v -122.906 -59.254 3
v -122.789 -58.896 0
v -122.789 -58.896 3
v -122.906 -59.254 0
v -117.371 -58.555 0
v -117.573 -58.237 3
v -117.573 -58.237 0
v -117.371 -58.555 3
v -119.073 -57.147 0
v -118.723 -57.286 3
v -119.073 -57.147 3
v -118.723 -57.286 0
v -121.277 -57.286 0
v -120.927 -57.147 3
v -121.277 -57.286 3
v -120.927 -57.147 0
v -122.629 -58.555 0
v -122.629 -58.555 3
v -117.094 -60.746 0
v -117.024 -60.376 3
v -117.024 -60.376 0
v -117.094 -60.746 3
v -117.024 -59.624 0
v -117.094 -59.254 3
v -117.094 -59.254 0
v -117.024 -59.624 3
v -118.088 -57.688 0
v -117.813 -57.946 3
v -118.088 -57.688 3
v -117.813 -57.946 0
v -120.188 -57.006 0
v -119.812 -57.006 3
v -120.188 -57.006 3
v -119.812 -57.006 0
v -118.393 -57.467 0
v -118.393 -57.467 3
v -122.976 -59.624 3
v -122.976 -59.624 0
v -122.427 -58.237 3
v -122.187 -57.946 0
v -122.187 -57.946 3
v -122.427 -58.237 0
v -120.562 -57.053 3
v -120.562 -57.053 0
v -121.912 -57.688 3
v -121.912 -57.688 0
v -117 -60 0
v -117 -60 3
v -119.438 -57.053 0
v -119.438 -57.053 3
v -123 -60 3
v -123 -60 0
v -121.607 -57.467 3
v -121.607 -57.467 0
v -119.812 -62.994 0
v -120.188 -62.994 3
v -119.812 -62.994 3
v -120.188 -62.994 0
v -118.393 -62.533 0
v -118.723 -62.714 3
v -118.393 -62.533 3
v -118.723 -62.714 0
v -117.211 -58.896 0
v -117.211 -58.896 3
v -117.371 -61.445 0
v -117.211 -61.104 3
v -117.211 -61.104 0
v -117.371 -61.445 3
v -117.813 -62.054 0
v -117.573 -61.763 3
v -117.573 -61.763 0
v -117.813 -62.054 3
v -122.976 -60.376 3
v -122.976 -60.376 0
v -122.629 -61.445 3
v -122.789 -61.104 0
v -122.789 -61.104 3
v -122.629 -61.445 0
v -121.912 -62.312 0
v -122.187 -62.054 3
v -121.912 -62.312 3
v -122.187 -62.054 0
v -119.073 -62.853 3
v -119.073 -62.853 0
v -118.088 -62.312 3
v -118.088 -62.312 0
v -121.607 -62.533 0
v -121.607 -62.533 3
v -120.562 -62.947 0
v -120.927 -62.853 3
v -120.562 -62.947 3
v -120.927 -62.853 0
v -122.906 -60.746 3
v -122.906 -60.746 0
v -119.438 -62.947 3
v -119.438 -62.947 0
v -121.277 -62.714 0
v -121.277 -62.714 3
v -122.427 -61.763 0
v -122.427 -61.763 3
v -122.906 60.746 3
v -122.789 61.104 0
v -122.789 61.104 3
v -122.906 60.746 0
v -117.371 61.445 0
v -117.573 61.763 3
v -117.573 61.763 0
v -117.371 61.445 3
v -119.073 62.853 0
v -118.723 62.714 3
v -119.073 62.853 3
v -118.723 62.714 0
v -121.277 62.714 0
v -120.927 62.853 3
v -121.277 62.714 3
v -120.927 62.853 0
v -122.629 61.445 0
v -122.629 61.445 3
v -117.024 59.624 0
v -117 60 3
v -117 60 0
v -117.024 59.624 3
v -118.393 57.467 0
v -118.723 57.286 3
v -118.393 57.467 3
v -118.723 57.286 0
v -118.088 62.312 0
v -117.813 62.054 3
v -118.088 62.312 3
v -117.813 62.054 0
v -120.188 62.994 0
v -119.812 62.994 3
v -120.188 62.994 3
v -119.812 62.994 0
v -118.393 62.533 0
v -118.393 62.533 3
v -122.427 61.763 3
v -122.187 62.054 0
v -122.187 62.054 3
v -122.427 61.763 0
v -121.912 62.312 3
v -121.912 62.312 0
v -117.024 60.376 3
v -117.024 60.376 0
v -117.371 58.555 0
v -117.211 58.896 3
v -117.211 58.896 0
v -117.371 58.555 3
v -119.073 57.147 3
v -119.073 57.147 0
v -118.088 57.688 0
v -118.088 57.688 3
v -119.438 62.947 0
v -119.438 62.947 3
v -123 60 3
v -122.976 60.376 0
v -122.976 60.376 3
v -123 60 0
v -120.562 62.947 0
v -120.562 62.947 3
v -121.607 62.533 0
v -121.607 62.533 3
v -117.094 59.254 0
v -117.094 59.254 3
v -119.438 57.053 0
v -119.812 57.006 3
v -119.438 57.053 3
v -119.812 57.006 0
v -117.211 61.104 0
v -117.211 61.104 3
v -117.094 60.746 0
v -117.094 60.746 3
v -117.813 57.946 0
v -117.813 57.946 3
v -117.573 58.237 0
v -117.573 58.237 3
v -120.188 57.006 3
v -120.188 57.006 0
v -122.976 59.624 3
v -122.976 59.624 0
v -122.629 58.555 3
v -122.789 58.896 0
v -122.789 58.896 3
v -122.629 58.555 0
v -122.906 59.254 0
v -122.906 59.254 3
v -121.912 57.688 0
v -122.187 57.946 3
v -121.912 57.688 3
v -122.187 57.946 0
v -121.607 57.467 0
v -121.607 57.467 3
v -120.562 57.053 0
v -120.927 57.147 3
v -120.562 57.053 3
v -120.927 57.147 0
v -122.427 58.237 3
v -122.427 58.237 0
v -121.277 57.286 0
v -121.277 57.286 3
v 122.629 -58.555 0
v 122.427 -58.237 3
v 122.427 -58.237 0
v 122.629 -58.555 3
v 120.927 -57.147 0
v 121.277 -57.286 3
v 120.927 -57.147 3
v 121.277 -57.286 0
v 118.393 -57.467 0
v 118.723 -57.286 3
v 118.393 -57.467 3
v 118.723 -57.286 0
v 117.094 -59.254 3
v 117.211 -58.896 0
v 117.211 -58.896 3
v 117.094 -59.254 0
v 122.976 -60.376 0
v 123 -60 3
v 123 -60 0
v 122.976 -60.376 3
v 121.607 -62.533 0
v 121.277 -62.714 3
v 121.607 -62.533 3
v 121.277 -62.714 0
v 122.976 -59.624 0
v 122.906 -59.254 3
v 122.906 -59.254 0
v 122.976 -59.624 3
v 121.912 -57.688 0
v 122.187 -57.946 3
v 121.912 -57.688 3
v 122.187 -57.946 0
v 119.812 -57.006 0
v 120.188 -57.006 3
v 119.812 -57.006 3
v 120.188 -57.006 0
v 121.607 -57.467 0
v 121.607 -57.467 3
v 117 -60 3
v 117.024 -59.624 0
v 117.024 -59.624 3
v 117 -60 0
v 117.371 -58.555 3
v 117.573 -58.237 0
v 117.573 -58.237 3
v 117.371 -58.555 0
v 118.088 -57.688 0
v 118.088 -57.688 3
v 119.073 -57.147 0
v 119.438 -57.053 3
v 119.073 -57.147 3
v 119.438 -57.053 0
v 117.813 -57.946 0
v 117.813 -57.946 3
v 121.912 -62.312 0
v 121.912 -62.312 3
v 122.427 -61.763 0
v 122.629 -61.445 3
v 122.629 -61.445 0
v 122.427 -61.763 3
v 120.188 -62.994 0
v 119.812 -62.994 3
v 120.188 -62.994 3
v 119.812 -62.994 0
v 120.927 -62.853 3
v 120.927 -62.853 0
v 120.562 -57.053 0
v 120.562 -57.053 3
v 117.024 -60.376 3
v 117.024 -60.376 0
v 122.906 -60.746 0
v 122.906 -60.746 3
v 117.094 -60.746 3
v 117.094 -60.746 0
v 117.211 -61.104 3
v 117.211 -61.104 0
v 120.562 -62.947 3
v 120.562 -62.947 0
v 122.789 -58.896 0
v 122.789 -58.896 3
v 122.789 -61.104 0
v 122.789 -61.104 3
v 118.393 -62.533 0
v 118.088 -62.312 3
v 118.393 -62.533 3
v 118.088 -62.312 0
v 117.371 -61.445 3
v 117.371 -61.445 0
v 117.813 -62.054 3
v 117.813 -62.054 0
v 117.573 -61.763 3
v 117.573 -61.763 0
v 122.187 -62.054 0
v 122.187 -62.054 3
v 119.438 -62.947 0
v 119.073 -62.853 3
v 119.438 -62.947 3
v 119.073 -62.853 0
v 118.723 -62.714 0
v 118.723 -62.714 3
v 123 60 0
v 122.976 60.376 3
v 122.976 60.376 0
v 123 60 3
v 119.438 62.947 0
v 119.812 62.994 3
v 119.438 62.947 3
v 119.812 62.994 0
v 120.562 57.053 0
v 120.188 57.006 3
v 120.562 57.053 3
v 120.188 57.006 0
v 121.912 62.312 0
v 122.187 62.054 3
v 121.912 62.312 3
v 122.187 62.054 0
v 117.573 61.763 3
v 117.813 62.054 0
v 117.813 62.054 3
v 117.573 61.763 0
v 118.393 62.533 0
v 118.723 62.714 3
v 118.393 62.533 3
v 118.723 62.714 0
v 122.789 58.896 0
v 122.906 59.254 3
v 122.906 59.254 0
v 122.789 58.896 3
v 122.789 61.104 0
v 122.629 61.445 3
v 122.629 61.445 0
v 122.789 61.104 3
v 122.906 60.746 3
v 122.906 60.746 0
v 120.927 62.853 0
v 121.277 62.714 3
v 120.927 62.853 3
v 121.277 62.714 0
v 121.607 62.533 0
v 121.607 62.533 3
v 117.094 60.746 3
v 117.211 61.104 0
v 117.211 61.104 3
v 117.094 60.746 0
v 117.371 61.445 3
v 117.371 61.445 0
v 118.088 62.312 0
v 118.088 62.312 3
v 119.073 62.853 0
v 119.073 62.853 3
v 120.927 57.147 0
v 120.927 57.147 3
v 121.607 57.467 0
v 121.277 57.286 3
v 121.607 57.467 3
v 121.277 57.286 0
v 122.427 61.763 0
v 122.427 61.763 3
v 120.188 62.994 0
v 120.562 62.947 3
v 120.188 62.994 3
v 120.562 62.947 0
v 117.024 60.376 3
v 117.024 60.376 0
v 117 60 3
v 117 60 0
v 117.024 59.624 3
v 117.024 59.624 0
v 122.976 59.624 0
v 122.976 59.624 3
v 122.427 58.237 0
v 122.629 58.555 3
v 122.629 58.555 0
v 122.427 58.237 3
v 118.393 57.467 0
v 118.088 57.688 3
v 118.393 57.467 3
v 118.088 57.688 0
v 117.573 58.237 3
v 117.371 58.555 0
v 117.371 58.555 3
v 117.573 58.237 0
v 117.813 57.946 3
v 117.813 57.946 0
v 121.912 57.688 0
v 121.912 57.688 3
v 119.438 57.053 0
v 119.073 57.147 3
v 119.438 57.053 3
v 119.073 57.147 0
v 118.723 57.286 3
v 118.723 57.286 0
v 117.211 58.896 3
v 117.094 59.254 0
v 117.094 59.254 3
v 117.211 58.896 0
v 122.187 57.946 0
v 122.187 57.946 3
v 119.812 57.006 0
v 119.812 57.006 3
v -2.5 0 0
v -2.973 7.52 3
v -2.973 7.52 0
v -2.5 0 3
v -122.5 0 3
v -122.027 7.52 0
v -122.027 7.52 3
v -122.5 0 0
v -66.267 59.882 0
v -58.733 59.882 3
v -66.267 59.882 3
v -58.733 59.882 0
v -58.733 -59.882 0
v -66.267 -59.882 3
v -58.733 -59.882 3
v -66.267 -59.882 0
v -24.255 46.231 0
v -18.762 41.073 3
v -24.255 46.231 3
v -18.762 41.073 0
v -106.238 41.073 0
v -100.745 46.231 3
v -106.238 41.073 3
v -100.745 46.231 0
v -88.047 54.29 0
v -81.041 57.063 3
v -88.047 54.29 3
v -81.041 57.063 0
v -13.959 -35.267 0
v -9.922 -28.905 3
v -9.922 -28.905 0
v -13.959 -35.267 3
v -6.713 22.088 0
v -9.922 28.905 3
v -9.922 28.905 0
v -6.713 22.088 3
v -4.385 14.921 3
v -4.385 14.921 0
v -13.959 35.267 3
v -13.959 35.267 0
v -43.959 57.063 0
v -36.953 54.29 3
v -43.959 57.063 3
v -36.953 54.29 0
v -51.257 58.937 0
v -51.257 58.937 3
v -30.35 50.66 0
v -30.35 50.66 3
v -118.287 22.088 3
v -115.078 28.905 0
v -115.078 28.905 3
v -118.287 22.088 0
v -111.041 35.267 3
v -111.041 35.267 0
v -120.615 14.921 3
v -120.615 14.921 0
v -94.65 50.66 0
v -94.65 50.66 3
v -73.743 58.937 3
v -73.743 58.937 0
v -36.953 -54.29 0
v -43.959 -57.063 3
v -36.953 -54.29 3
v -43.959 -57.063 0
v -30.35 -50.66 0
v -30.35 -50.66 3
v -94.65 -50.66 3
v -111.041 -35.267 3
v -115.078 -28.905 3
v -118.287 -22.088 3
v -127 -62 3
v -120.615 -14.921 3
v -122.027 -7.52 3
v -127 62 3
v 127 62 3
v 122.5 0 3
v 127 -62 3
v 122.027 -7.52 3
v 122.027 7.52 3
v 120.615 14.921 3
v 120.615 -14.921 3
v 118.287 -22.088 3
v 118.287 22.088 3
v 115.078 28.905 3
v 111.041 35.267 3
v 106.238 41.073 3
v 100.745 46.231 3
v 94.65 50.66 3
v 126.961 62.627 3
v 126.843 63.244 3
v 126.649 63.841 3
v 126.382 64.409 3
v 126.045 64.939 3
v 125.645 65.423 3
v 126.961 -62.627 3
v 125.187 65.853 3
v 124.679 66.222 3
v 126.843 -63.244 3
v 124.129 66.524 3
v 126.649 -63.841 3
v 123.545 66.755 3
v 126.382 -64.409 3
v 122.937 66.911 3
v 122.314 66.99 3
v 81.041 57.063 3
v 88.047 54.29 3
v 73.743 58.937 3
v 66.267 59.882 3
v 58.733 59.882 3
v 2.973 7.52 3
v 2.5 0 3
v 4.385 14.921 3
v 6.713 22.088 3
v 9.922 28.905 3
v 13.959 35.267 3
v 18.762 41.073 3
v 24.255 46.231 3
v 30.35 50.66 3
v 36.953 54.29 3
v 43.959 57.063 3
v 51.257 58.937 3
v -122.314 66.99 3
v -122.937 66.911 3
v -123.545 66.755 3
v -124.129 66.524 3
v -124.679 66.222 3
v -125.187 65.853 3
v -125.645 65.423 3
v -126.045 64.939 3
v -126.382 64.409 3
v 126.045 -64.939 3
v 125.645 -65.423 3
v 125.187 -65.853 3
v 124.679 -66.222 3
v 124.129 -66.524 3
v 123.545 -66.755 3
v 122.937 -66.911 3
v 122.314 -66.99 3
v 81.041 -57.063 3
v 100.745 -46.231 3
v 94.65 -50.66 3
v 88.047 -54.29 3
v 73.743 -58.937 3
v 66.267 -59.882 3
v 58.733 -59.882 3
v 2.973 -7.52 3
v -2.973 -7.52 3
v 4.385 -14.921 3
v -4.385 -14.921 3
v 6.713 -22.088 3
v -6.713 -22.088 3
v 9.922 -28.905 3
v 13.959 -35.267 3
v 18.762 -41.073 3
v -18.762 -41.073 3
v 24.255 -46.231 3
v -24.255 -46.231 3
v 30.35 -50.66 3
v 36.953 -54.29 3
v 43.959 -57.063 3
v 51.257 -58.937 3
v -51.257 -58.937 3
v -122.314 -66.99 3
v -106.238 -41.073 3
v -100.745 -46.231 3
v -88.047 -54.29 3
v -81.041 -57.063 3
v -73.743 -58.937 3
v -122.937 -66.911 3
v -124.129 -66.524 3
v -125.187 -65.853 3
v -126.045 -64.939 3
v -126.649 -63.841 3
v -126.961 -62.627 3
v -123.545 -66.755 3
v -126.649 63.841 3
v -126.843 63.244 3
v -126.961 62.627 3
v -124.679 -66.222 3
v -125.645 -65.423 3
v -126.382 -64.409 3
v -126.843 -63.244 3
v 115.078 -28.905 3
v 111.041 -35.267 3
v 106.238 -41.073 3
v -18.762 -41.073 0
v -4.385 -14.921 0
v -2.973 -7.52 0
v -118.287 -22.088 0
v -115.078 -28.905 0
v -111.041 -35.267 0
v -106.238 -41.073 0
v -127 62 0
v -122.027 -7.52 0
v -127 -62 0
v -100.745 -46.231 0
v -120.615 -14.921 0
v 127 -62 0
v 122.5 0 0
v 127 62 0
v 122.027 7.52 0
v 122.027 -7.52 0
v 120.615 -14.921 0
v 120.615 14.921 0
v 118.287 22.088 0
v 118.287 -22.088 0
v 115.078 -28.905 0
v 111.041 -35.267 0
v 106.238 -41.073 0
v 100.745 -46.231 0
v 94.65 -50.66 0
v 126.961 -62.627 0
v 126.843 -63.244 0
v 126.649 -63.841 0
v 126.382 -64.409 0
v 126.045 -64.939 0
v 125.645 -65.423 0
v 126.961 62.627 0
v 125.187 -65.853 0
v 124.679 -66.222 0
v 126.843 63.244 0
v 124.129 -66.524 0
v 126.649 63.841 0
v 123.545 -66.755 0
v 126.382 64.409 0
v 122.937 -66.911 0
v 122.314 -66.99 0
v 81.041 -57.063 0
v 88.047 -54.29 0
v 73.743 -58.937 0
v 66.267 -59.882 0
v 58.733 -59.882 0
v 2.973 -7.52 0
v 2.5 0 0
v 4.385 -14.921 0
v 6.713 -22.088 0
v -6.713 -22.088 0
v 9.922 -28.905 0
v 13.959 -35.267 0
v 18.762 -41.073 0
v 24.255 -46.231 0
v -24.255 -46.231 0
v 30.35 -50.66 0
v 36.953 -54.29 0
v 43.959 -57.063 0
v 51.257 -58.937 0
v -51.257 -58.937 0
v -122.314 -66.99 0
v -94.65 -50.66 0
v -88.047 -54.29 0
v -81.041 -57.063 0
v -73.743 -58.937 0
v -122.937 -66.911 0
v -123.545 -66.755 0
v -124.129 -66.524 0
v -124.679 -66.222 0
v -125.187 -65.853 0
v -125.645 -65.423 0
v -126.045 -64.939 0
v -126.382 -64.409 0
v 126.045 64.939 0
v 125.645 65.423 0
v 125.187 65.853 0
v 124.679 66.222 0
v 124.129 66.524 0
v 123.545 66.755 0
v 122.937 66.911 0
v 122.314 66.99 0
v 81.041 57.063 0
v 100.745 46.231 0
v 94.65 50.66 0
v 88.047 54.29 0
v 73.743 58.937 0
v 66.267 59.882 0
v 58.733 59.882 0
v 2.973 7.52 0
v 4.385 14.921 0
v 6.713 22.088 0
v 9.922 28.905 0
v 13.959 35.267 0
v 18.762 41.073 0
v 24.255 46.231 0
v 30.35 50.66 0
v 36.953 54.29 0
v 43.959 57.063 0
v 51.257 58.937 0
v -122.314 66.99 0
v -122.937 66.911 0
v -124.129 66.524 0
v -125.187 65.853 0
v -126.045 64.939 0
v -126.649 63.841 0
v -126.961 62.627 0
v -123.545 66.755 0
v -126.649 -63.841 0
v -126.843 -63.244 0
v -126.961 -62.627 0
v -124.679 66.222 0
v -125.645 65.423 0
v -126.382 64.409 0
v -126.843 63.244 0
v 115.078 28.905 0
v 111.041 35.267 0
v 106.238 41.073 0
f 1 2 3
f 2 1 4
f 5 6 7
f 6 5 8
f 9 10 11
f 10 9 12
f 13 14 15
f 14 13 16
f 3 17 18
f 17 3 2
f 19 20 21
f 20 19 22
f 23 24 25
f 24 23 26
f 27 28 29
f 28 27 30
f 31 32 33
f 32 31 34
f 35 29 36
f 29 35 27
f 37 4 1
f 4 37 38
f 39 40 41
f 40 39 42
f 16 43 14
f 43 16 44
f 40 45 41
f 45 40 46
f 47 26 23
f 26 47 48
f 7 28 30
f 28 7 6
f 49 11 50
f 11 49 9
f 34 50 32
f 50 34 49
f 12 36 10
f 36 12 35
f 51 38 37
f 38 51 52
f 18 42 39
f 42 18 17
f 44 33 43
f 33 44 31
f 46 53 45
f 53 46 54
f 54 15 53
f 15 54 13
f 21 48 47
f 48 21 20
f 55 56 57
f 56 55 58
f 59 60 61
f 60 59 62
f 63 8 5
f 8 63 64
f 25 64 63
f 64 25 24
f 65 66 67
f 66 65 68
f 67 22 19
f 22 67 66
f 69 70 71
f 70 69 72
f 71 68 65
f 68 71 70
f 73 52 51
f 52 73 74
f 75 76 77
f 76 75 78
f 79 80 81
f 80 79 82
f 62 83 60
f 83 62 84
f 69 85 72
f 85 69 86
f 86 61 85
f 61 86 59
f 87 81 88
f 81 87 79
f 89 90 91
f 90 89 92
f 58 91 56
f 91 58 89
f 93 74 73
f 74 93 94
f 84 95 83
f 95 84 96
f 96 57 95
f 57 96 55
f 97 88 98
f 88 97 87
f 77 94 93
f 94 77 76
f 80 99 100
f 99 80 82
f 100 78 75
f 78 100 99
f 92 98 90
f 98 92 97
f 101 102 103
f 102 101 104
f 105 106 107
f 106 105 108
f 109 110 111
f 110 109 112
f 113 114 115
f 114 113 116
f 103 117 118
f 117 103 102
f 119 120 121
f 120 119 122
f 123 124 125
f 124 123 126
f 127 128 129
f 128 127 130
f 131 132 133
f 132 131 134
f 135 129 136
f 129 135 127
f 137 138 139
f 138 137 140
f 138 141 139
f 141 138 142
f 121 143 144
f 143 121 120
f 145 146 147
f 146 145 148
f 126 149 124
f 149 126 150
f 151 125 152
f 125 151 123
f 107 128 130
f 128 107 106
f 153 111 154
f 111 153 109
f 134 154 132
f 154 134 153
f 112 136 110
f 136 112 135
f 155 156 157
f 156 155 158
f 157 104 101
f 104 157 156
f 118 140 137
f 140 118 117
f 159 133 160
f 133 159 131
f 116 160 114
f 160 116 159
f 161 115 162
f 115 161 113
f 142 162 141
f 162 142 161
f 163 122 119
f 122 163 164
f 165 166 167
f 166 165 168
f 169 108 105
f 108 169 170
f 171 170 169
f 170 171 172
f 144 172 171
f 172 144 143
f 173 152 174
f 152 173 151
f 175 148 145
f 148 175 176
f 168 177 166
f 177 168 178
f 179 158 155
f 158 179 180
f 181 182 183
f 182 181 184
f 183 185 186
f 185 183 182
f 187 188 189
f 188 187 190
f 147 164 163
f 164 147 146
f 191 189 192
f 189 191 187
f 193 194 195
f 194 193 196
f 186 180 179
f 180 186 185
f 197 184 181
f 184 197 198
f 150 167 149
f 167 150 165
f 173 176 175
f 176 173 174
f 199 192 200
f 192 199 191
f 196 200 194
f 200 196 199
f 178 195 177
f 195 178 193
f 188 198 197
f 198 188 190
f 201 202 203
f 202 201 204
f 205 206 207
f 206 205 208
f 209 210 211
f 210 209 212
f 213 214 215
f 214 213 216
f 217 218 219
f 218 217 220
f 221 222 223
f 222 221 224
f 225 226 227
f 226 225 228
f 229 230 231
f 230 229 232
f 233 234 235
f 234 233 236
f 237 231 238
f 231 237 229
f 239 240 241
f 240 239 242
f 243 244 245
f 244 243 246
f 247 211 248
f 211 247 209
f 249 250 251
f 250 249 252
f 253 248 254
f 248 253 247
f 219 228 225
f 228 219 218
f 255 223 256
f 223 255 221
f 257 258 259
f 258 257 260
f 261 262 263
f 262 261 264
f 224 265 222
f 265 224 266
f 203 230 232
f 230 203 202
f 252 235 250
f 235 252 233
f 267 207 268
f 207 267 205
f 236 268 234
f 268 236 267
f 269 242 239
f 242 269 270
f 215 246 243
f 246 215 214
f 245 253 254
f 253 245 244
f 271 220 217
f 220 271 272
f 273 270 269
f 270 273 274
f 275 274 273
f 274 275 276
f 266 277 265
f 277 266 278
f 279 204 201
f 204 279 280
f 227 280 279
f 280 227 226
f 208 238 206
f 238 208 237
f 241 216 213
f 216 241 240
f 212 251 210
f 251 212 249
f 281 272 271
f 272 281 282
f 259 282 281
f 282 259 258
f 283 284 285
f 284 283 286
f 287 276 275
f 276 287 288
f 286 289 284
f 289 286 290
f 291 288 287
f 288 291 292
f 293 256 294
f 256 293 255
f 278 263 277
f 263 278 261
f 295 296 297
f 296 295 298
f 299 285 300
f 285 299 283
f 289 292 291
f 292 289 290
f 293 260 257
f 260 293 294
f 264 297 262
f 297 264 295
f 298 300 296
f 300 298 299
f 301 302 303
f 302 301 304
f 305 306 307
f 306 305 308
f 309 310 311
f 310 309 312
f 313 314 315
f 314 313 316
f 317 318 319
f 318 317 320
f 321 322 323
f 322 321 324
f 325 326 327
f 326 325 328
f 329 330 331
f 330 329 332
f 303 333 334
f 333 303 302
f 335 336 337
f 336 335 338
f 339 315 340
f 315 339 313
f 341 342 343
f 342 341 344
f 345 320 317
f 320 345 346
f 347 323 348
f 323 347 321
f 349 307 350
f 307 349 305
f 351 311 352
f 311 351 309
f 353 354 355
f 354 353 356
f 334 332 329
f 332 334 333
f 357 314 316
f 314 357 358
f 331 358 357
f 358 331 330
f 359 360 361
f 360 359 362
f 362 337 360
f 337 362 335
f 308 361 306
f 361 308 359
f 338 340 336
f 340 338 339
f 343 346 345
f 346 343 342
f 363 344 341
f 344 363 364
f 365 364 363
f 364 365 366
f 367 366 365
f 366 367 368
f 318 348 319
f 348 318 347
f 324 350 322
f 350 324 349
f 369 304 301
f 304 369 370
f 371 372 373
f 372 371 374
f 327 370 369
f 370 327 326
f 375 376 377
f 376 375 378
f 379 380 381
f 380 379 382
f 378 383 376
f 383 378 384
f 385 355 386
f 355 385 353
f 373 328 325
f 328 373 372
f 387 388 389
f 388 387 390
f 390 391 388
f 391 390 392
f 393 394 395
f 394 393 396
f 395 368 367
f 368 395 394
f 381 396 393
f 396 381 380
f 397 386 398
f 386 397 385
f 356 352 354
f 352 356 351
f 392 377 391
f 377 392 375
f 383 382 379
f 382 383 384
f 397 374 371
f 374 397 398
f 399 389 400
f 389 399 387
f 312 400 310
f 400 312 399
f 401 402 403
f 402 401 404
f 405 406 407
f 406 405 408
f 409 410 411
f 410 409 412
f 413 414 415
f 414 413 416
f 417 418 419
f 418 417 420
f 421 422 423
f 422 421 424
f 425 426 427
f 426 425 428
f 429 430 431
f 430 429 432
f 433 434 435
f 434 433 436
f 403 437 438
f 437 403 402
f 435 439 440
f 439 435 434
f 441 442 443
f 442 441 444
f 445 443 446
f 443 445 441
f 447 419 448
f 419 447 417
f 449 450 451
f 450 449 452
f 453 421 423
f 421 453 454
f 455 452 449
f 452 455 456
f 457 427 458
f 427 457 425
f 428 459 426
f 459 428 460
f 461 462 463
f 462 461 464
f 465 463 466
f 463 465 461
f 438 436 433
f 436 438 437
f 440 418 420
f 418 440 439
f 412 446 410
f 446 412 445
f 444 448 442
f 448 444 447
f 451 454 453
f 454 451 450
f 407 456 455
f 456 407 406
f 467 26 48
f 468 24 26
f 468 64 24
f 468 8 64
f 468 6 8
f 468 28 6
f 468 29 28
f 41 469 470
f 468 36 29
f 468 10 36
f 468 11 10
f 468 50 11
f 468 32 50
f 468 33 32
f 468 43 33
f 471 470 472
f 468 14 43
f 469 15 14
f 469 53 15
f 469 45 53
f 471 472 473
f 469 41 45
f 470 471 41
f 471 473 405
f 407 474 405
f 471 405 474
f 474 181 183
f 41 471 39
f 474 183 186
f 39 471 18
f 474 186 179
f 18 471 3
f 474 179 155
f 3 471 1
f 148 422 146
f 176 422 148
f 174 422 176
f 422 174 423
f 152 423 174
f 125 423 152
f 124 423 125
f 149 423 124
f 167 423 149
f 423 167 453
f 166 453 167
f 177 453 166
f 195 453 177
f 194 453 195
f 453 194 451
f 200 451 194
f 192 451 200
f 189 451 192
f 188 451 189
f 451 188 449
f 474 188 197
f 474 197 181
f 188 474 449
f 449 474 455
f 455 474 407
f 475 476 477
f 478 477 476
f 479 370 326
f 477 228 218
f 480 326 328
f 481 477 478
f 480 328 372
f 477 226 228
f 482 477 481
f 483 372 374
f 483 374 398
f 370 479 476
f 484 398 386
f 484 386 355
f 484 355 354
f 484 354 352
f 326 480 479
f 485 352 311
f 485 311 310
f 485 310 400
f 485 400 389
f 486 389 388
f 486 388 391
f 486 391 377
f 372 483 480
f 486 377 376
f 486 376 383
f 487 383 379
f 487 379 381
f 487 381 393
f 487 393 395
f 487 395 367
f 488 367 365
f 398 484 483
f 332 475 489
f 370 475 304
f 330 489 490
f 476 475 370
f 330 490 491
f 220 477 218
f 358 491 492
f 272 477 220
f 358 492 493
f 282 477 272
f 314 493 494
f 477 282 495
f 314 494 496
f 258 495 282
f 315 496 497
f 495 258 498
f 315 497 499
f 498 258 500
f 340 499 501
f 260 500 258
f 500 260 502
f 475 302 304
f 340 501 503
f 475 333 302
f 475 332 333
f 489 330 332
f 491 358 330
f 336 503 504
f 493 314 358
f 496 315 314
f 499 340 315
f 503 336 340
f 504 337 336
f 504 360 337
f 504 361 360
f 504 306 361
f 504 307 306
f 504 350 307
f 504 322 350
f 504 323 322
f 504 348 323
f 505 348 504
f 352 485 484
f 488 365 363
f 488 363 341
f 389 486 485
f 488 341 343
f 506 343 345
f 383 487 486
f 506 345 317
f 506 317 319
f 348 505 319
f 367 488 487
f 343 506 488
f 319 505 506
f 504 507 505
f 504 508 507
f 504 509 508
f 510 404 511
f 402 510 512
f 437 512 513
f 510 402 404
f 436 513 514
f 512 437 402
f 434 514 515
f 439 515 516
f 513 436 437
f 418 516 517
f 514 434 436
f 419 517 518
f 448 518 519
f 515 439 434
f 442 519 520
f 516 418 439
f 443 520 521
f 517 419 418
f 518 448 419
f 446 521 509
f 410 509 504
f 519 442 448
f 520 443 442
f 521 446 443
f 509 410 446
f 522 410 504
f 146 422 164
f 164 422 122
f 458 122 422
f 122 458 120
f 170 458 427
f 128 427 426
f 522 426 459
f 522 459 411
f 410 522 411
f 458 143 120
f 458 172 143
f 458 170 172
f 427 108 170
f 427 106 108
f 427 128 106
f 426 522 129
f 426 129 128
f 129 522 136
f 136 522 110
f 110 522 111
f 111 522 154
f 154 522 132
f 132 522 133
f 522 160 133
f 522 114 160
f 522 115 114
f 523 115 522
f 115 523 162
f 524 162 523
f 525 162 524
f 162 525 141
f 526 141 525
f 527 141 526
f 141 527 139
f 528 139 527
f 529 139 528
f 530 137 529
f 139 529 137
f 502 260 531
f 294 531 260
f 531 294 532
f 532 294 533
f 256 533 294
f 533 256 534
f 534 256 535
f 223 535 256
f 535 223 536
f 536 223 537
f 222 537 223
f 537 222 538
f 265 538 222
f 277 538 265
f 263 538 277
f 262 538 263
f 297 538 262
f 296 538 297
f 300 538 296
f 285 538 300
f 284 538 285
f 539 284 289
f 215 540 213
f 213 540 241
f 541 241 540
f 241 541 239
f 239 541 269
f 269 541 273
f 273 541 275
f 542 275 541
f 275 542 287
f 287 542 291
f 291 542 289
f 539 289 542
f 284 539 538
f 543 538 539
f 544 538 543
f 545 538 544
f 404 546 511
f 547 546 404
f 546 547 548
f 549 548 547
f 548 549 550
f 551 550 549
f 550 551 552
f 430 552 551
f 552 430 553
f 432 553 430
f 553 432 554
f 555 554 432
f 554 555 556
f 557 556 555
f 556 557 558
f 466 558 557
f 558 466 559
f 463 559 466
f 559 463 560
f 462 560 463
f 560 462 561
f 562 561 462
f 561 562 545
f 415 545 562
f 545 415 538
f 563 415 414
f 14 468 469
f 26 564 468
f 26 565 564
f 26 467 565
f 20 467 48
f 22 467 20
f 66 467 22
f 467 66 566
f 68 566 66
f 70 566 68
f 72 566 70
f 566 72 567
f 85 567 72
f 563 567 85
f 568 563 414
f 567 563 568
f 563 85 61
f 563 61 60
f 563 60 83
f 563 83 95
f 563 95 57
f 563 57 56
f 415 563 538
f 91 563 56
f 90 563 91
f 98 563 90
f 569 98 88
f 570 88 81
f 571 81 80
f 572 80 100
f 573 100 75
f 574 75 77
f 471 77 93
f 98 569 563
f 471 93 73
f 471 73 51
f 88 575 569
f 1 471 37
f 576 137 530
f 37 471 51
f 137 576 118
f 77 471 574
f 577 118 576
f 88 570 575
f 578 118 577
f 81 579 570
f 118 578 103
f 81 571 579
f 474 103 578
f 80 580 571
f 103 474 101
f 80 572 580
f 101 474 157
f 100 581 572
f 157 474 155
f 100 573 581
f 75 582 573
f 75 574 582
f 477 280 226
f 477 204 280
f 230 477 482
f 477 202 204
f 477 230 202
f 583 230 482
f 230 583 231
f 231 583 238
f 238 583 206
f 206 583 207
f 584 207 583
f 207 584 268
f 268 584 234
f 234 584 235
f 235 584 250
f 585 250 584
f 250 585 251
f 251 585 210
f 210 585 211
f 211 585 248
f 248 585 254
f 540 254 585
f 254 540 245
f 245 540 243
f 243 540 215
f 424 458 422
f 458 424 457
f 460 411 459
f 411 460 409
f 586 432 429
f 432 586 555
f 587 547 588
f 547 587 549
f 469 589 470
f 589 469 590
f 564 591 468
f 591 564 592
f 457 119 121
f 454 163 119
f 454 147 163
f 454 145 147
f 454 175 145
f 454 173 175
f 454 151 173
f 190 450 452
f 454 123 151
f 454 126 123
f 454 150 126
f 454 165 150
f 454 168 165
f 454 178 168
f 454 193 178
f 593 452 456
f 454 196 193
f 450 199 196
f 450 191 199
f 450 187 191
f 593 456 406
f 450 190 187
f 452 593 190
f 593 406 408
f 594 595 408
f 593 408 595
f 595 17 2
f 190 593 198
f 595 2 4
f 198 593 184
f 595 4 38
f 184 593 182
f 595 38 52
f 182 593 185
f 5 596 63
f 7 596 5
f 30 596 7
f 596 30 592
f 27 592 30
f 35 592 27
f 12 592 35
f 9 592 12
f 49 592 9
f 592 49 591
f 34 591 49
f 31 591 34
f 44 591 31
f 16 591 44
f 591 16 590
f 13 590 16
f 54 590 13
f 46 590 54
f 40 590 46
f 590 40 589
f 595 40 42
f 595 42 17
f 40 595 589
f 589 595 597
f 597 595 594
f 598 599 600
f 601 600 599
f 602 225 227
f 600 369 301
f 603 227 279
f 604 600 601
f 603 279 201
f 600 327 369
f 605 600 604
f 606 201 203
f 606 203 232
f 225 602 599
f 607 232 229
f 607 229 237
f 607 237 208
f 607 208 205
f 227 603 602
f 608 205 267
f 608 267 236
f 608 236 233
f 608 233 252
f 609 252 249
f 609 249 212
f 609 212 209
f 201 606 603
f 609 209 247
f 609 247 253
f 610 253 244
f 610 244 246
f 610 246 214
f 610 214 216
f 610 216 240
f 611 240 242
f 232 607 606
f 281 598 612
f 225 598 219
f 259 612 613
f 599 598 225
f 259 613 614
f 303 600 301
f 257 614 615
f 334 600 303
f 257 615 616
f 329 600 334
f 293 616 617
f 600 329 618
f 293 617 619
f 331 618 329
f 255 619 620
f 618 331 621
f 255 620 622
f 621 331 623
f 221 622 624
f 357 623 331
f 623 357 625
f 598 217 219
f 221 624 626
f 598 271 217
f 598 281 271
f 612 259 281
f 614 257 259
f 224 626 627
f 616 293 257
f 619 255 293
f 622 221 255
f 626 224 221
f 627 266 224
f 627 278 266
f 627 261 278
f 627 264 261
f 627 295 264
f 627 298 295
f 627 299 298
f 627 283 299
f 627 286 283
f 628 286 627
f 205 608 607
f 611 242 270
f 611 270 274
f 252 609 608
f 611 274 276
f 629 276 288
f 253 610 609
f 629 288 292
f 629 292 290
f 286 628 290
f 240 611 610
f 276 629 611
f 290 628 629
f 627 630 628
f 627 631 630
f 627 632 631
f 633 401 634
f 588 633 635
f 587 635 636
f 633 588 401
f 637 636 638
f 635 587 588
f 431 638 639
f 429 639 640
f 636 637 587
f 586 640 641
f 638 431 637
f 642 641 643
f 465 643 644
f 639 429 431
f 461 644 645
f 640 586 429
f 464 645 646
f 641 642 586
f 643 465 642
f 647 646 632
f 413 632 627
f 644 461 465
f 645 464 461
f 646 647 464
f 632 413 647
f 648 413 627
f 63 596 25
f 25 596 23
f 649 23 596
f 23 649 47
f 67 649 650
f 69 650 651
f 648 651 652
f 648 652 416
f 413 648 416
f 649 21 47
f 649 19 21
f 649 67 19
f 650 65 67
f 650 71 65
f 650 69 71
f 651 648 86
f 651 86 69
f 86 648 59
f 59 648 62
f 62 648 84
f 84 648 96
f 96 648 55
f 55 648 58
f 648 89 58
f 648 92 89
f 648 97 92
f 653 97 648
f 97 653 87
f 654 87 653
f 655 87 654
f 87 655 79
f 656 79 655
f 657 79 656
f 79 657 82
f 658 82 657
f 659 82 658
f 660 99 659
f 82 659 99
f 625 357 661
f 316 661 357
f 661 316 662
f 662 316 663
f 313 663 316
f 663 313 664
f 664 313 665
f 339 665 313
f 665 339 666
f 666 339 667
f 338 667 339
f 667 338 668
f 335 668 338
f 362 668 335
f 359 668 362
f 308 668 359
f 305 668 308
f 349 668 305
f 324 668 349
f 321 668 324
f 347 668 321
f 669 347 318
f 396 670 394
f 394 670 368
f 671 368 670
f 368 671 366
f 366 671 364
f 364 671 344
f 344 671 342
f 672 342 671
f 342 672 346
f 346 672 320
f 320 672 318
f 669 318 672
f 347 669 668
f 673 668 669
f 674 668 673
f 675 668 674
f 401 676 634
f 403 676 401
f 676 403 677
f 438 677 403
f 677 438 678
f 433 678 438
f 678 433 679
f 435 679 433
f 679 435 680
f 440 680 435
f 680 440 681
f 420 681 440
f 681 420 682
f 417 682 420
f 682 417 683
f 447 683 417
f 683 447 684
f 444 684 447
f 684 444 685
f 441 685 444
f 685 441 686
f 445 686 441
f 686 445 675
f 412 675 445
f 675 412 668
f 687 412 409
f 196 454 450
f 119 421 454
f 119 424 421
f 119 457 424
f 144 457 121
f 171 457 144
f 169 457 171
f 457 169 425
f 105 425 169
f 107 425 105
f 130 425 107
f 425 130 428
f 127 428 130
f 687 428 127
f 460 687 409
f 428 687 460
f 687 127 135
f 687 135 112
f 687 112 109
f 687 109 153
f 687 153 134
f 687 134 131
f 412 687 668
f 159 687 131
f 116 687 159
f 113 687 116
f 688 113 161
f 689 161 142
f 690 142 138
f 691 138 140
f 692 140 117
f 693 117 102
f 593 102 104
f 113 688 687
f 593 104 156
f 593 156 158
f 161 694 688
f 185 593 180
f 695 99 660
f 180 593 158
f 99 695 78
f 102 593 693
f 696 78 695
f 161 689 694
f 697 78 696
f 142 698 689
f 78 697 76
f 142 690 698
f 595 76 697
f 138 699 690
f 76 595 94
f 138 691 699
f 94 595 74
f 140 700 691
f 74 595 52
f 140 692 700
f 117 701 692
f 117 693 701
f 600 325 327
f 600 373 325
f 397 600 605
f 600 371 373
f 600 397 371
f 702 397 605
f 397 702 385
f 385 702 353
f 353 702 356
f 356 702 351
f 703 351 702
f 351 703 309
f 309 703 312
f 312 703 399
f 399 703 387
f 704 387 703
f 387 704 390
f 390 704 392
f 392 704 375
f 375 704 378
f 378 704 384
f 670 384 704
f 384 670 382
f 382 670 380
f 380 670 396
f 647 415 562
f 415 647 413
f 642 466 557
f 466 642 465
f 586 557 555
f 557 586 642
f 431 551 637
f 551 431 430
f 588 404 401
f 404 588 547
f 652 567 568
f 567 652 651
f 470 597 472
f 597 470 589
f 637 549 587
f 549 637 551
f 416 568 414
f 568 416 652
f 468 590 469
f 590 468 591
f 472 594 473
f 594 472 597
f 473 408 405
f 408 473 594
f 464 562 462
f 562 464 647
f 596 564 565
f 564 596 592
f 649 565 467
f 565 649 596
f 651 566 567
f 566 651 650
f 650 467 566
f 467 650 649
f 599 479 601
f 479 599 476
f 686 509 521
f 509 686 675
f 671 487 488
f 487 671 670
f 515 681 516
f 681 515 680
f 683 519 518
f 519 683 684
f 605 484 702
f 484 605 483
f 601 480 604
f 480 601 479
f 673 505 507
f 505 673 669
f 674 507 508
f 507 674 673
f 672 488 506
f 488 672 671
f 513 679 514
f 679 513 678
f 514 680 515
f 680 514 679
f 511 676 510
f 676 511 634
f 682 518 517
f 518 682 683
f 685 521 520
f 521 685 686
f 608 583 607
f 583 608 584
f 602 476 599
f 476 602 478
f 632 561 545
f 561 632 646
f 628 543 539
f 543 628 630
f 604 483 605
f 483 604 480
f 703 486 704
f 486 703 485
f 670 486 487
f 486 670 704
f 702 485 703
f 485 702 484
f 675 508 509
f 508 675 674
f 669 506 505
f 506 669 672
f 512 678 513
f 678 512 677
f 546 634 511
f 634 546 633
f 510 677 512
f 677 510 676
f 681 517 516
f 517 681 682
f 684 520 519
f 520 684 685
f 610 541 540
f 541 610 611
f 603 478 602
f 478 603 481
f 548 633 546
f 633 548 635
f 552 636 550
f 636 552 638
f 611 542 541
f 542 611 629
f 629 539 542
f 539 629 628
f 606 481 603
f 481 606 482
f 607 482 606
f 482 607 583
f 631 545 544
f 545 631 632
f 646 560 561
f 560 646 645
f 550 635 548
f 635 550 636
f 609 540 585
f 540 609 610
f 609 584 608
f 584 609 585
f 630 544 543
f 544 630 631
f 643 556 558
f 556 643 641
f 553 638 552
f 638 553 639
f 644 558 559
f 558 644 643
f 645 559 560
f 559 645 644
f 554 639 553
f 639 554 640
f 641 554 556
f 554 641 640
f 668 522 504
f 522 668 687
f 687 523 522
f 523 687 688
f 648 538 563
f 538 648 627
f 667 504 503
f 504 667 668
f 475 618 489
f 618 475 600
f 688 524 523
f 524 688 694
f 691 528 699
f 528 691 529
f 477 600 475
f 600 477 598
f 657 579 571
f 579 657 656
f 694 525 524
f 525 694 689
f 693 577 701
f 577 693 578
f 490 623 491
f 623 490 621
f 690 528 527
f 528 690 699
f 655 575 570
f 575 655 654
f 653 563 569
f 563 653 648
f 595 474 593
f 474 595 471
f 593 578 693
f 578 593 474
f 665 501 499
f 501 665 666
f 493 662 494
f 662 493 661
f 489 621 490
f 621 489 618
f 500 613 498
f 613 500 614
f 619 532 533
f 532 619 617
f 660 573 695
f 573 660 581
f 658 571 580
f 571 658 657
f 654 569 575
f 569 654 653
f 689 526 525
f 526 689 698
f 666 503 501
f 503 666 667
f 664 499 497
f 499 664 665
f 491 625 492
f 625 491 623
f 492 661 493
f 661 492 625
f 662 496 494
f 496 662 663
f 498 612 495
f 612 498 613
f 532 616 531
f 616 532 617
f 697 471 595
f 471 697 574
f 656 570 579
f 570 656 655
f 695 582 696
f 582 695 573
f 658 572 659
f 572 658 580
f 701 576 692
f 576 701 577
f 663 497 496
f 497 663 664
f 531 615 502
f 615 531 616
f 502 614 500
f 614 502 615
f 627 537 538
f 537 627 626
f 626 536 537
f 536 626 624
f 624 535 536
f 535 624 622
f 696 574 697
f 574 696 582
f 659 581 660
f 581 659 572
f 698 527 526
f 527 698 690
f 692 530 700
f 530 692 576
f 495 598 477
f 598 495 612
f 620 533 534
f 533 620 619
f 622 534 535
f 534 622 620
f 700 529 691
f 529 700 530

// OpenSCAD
$fn = 50;


difference() {
	union() {
		hull() {
			translate(v = [-122.0000000000, 62.0000000000, 0]) {
				cylinder(h = 3, r = 5);
			}
			translate(v = [122.0000000000, 62.0000000000, 0]) {
				cylinder(h = 3, r = 5);
			}
			translate(v = [-122.0000000000, -62.0000000000, 0]) {
				cylinder(h = 3, r = 5);
			}
			translate(v = [122.0000000000, -62.0000000000, 0]) {
				cylinder(h = 3, r = 5);
			}
		}
	}
	union() {
		#translate(v = [-120.0000000000, -60.0000000000, -100.0000000000]) {
			cylinder(h = 200, r = 3.0000000000);
		}
		#translate(v = [-120.0000000000, 60.0000000000, -100.0000000000]) {
			cylinder(h = 200, r = 3.0000000000);
		}
		#translate(v = [120.0000000000, -60.0000000000, -100.0000000000]) {
			cylinder(h = 200, r = 3.0000000000);
		}
		#translate(v = [120.0000000000, 60.0000000000, -100.0000000000]) {
			cylinder(h = 200, r = 3.0000000000);
		}
		#translate(v = [-62.5000000000, 0, 0]) {
			cylinder(h = 3, r = 60.0000000000);
		}
		#translate(v = [62.5000000000, 0, 0]) {
			cylinder(h = 3, r = 60.0000000000);
		}
	}
}
